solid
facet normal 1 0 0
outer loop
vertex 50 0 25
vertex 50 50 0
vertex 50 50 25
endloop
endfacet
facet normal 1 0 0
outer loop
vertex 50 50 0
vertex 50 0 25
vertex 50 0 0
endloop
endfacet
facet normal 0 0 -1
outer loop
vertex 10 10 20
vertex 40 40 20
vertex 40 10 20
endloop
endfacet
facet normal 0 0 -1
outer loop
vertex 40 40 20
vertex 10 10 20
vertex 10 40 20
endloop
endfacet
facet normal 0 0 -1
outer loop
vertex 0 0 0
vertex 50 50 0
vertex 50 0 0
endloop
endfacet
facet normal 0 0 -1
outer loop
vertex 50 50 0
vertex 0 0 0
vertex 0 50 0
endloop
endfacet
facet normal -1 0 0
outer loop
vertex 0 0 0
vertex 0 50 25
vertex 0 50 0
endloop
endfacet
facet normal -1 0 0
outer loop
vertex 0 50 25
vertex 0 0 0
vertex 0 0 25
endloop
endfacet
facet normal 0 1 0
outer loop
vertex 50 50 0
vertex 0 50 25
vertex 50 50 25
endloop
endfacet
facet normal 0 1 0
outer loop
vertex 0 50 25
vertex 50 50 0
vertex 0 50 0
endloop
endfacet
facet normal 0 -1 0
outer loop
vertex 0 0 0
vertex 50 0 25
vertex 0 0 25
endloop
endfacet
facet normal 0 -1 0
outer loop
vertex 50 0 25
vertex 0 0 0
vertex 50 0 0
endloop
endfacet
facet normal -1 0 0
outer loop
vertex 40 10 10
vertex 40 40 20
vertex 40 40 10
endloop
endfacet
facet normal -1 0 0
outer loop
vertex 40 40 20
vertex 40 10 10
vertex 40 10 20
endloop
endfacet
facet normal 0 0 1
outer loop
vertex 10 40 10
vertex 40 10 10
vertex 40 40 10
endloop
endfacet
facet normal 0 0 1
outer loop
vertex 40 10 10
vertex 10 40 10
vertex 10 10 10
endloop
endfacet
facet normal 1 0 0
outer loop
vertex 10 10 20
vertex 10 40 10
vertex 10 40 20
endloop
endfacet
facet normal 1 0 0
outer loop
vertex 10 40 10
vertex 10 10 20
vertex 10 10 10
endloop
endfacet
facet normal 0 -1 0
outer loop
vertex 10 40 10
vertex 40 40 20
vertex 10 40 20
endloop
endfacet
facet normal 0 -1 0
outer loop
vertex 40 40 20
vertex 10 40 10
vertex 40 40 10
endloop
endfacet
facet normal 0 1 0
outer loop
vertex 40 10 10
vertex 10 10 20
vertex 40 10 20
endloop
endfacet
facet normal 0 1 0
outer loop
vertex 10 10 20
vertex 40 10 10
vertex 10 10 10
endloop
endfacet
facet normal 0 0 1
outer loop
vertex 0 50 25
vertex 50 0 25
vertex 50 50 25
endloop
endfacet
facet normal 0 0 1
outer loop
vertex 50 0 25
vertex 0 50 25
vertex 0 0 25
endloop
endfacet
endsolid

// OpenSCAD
// Base block with recessed square cavity and sloped edge
module base_block() {
    difference() {
        // Main rectangular block
        cube([50, 50, 20], center = false);
        
        // Recessed square cavity on the top surface
        translate([10, 10, 10]) // Move cavity to the top surface
            cube([30, 30, 10], center = false);
        
        // Sloped edge on one side of the cavity, reoriented to match the original model
        translate([10, 10, 10])
            linear_extrude(height = 10)
                polygon(points = [[0, 0], [15, 0], [30, 30], [0, 30]]);
    }
}

// Top plate
module top_plate() {
    translate([0, 0, 20]) // Position above the base block
        cube([50, 50, 5], center = false); // Add flat rectangular plate
}

// Assemble the components
module assembly() {
    base_block();
    top_plate();
}

// Render the assembly
assembly();
